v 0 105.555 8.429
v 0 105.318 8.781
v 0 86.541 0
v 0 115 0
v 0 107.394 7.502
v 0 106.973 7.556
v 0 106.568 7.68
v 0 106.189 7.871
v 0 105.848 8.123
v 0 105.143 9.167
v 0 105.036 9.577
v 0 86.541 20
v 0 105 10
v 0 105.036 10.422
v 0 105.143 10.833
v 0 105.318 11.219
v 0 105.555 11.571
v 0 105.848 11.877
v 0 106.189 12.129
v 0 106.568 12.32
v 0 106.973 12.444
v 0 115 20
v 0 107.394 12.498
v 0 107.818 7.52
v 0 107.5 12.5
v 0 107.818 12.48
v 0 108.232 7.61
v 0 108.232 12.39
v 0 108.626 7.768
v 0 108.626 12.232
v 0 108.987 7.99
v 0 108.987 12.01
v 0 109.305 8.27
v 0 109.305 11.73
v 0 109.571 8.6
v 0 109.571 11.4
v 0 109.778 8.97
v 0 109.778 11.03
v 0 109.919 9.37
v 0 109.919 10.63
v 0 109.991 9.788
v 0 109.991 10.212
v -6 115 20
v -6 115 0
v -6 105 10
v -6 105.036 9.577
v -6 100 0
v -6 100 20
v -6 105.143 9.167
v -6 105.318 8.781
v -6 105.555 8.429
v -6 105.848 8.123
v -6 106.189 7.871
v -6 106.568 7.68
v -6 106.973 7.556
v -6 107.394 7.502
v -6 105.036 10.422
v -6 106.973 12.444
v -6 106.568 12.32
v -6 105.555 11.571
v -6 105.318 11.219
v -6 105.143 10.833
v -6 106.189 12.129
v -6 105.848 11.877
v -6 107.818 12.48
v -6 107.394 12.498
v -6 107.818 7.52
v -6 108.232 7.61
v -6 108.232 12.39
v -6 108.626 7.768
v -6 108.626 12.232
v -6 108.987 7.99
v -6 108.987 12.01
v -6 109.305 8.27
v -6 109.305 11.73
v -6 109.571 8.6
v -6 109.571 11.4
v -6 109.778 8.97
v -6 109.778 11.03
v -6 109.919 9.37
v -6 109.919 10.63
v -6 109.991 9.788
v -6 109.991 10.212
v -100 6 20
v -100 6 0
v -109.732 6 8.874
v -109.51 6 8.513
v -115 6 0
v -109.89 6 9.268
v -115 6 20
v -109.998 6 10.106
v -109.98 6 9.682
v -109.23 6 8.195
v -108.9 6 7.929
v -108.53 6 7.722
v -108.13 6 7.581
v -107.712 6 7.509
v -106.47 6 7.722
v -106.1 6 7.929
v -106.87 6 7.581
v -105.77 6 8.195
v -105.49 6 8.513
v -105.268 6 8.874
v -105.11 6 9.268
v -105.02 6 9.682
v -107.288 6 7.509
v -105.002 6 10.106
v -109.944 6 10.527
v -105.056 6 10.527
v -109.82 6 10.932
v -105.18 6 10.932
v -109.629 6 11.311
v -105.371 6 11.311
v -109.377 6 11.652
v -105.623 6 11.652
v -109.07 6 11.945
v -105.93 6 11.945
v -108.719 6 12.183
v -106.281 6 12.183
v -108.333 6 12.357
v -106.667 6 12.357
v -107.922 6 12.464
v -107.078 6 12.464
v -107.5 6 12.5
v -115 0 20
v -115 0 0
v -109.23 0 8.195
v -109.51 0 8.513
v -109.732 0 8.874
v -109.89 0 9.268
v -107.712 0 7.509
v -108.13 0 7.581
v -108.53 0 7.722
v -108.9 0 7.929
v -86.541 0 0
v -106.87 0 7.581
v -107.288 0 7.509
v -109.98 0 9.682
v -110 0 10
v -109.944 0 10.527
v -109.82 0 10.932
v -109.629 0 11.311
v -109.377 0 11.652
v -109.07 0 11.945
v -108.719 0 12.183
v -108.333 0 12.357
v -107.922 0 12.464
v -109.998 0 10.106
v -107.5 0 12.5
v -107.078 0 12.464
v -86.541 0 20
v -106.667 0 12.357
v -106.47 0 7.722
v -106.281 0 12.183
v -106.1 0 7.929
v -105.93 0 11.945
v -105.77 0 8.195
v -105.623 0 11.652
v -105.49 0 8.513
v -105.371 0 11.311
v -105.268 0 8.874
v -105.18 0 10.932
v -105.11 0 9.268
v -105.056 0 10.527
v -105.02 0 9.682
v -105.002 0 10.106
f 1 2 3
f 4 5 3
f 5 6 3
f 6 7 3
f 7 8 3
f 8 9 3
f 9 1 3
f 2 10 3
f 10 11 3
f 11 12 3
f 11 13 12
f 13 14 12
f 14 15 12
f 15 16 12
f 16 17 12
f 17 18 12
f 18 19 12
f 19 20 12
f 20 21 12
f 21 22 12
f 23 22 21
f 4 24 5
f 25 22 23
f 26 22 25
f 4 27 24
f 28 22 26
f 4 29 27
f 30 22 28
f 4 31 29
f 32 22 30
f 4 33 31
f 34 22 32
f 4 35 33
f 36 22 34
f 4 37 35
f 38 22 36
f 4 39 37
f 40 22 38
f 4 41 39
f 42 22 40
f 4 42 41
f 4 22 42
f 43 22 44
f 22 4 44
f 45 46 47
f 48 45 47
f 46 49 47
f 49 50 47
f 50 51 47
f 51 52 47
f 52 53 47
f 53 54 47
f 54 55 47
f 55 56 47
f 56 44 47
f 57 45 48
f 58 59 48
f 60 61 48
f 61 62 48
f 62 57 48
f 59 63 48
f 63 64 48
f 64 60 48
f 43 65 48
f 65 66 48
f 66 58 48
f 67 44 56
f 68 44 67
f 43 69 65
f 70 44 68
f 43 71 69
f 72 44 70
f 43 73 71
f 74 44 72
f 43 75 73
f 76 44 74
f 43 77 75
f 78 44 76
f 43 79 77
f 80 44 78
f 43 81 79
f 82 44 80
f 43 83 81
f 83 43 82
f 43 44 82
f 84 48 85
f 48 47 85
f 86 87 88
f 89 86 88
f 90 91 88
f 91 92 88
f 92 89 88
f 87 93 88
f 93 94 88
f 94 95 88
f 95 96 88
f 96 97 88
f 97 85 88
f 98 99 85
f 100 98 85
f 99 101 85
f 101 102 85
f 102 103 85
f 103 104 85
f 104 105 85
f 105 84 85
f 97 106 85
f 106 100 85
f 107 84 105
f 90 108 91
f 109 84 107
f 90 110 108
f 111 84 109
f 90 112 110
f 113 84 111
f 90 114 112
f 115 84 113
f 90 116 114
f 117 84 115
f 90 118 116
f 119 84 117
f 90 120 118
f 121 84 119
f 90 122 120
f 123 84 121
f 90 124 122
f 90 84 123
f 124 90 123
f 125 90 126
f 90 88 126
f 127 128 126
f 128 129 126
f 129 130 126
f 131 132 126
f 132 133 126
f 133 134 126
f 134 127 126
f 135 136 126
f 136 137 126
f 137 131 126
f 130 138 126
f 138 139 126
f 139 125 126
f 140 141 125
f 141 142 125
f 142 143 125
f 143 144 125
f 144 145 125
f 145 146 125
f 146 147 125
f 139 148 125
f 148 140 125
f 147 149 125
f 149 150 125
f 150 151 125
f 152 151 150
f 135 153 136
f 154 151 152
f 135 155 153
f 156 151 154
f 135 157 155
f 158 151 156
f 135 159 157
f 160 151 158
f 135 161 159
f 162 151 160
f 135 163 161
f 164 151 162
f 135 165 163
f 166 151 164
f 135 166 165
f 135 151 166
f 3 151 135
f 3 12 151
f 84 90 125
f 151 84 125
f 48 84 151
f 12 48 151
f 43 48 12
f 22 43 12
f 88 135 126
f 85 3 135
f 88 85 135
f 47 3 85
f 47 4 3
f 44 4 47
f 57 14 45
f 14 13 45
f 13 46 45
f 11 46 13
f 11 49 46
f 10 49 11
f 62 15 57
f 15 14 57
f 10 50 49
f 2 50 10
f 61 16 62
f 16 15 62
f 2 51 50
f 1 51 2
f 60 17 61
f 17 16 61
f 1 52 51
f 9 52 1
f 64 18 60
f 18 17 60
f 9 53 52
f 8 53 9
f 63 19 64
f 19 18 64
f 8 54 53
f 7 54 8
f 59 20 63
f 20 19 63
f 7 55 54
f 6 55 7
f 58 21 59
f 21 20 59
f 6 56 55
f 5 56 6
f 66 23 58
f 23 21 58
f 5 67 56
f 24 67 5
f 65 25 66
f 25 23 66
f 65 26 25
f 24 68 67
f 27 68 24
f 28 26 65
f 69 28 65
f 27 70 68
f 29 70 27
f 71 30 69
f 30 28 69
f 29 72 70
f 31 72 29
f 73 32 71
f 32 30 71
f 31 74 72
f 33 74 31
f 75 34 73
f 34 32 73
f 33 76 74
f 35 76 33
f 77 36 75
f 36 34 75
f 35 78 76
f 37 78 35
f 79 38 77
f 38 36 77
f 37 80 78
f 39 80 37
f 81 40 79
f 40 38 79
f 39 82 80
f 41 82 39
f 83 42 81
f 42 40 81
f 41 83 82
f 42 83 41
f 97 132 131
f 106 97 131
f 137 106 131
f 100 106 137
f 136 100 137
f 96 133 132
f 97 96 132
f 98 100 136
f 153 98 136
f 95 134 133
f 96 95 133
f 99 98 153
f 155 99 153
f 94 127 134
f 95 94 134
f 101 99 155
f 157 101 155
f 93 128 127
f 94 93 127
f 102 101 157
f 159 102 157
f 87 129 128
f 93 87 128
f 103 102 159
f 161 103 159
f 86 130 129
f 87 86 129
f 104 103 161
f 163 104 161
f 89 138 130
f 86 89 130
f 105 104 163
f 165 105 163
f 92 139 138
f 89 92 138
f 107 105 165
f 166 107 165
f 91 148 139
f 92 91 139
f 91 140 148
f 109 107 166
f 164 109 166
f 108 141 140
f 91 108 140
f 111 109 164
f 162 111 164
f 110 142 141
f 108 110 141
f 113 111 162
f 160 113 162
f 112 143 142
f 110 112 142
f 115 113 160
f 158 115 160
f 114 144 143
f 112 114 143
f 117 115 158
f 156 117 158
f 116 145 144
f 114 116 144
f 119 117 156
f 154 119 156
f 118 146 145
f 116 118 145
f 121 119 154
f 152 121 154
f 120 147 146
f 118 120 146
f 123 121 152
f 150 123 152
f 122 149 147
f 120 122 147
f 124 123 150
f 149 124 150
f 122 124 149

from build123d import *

# Parameters (mm, degrees)
BOSS_EXTRUDE1_DEPTH = 20
SKETCH3_R           = 2.5
CUT_EXTRUDE1_DEPTH  = 20
SKETCH4_R           = 2.5
CUT_EXTRUDE2_DEPTH  = 20


with BuildPart() as part:
    # Sketch2 → Boss-Extrude1 (new body)
    with BuildSketch(Plane.XY):
        Polygon((-115, 0), (-115, 6), (-100, 6), (-6, 100), (-6, 115), (0, 115), (0, 86.541134144), (-86.541134144, 0), align=None)
    extrude(amount=BOSS_EXTRUDE1_DEPTH)

    # Sketch3 → Cut-Extrude1 (cut)
    with BuildSketch(Plane.ZY.offset(6)):
        with Locations((10, 107.5)):
            Circle(SKETCH3_R)
    extrude(amount=-CUT_EXTRUDE1_DEPTH, mode=Mode.SUBTRACT)

    # Sketch4 → Cut-Extrude2 (cut)
    with BuildSketch(Plane(origin=(0, 6, 0), x_dir=(1, 0, 0), z_dir=(0, 1, 0))):
        with Locations((-107.5, -10)):
            Circle(SKETCH4_R)
    extrude(amount=-CUT_EXTRUDE2_DEPTH, mode=Mode.SUBTRACT)


solid = part.part
